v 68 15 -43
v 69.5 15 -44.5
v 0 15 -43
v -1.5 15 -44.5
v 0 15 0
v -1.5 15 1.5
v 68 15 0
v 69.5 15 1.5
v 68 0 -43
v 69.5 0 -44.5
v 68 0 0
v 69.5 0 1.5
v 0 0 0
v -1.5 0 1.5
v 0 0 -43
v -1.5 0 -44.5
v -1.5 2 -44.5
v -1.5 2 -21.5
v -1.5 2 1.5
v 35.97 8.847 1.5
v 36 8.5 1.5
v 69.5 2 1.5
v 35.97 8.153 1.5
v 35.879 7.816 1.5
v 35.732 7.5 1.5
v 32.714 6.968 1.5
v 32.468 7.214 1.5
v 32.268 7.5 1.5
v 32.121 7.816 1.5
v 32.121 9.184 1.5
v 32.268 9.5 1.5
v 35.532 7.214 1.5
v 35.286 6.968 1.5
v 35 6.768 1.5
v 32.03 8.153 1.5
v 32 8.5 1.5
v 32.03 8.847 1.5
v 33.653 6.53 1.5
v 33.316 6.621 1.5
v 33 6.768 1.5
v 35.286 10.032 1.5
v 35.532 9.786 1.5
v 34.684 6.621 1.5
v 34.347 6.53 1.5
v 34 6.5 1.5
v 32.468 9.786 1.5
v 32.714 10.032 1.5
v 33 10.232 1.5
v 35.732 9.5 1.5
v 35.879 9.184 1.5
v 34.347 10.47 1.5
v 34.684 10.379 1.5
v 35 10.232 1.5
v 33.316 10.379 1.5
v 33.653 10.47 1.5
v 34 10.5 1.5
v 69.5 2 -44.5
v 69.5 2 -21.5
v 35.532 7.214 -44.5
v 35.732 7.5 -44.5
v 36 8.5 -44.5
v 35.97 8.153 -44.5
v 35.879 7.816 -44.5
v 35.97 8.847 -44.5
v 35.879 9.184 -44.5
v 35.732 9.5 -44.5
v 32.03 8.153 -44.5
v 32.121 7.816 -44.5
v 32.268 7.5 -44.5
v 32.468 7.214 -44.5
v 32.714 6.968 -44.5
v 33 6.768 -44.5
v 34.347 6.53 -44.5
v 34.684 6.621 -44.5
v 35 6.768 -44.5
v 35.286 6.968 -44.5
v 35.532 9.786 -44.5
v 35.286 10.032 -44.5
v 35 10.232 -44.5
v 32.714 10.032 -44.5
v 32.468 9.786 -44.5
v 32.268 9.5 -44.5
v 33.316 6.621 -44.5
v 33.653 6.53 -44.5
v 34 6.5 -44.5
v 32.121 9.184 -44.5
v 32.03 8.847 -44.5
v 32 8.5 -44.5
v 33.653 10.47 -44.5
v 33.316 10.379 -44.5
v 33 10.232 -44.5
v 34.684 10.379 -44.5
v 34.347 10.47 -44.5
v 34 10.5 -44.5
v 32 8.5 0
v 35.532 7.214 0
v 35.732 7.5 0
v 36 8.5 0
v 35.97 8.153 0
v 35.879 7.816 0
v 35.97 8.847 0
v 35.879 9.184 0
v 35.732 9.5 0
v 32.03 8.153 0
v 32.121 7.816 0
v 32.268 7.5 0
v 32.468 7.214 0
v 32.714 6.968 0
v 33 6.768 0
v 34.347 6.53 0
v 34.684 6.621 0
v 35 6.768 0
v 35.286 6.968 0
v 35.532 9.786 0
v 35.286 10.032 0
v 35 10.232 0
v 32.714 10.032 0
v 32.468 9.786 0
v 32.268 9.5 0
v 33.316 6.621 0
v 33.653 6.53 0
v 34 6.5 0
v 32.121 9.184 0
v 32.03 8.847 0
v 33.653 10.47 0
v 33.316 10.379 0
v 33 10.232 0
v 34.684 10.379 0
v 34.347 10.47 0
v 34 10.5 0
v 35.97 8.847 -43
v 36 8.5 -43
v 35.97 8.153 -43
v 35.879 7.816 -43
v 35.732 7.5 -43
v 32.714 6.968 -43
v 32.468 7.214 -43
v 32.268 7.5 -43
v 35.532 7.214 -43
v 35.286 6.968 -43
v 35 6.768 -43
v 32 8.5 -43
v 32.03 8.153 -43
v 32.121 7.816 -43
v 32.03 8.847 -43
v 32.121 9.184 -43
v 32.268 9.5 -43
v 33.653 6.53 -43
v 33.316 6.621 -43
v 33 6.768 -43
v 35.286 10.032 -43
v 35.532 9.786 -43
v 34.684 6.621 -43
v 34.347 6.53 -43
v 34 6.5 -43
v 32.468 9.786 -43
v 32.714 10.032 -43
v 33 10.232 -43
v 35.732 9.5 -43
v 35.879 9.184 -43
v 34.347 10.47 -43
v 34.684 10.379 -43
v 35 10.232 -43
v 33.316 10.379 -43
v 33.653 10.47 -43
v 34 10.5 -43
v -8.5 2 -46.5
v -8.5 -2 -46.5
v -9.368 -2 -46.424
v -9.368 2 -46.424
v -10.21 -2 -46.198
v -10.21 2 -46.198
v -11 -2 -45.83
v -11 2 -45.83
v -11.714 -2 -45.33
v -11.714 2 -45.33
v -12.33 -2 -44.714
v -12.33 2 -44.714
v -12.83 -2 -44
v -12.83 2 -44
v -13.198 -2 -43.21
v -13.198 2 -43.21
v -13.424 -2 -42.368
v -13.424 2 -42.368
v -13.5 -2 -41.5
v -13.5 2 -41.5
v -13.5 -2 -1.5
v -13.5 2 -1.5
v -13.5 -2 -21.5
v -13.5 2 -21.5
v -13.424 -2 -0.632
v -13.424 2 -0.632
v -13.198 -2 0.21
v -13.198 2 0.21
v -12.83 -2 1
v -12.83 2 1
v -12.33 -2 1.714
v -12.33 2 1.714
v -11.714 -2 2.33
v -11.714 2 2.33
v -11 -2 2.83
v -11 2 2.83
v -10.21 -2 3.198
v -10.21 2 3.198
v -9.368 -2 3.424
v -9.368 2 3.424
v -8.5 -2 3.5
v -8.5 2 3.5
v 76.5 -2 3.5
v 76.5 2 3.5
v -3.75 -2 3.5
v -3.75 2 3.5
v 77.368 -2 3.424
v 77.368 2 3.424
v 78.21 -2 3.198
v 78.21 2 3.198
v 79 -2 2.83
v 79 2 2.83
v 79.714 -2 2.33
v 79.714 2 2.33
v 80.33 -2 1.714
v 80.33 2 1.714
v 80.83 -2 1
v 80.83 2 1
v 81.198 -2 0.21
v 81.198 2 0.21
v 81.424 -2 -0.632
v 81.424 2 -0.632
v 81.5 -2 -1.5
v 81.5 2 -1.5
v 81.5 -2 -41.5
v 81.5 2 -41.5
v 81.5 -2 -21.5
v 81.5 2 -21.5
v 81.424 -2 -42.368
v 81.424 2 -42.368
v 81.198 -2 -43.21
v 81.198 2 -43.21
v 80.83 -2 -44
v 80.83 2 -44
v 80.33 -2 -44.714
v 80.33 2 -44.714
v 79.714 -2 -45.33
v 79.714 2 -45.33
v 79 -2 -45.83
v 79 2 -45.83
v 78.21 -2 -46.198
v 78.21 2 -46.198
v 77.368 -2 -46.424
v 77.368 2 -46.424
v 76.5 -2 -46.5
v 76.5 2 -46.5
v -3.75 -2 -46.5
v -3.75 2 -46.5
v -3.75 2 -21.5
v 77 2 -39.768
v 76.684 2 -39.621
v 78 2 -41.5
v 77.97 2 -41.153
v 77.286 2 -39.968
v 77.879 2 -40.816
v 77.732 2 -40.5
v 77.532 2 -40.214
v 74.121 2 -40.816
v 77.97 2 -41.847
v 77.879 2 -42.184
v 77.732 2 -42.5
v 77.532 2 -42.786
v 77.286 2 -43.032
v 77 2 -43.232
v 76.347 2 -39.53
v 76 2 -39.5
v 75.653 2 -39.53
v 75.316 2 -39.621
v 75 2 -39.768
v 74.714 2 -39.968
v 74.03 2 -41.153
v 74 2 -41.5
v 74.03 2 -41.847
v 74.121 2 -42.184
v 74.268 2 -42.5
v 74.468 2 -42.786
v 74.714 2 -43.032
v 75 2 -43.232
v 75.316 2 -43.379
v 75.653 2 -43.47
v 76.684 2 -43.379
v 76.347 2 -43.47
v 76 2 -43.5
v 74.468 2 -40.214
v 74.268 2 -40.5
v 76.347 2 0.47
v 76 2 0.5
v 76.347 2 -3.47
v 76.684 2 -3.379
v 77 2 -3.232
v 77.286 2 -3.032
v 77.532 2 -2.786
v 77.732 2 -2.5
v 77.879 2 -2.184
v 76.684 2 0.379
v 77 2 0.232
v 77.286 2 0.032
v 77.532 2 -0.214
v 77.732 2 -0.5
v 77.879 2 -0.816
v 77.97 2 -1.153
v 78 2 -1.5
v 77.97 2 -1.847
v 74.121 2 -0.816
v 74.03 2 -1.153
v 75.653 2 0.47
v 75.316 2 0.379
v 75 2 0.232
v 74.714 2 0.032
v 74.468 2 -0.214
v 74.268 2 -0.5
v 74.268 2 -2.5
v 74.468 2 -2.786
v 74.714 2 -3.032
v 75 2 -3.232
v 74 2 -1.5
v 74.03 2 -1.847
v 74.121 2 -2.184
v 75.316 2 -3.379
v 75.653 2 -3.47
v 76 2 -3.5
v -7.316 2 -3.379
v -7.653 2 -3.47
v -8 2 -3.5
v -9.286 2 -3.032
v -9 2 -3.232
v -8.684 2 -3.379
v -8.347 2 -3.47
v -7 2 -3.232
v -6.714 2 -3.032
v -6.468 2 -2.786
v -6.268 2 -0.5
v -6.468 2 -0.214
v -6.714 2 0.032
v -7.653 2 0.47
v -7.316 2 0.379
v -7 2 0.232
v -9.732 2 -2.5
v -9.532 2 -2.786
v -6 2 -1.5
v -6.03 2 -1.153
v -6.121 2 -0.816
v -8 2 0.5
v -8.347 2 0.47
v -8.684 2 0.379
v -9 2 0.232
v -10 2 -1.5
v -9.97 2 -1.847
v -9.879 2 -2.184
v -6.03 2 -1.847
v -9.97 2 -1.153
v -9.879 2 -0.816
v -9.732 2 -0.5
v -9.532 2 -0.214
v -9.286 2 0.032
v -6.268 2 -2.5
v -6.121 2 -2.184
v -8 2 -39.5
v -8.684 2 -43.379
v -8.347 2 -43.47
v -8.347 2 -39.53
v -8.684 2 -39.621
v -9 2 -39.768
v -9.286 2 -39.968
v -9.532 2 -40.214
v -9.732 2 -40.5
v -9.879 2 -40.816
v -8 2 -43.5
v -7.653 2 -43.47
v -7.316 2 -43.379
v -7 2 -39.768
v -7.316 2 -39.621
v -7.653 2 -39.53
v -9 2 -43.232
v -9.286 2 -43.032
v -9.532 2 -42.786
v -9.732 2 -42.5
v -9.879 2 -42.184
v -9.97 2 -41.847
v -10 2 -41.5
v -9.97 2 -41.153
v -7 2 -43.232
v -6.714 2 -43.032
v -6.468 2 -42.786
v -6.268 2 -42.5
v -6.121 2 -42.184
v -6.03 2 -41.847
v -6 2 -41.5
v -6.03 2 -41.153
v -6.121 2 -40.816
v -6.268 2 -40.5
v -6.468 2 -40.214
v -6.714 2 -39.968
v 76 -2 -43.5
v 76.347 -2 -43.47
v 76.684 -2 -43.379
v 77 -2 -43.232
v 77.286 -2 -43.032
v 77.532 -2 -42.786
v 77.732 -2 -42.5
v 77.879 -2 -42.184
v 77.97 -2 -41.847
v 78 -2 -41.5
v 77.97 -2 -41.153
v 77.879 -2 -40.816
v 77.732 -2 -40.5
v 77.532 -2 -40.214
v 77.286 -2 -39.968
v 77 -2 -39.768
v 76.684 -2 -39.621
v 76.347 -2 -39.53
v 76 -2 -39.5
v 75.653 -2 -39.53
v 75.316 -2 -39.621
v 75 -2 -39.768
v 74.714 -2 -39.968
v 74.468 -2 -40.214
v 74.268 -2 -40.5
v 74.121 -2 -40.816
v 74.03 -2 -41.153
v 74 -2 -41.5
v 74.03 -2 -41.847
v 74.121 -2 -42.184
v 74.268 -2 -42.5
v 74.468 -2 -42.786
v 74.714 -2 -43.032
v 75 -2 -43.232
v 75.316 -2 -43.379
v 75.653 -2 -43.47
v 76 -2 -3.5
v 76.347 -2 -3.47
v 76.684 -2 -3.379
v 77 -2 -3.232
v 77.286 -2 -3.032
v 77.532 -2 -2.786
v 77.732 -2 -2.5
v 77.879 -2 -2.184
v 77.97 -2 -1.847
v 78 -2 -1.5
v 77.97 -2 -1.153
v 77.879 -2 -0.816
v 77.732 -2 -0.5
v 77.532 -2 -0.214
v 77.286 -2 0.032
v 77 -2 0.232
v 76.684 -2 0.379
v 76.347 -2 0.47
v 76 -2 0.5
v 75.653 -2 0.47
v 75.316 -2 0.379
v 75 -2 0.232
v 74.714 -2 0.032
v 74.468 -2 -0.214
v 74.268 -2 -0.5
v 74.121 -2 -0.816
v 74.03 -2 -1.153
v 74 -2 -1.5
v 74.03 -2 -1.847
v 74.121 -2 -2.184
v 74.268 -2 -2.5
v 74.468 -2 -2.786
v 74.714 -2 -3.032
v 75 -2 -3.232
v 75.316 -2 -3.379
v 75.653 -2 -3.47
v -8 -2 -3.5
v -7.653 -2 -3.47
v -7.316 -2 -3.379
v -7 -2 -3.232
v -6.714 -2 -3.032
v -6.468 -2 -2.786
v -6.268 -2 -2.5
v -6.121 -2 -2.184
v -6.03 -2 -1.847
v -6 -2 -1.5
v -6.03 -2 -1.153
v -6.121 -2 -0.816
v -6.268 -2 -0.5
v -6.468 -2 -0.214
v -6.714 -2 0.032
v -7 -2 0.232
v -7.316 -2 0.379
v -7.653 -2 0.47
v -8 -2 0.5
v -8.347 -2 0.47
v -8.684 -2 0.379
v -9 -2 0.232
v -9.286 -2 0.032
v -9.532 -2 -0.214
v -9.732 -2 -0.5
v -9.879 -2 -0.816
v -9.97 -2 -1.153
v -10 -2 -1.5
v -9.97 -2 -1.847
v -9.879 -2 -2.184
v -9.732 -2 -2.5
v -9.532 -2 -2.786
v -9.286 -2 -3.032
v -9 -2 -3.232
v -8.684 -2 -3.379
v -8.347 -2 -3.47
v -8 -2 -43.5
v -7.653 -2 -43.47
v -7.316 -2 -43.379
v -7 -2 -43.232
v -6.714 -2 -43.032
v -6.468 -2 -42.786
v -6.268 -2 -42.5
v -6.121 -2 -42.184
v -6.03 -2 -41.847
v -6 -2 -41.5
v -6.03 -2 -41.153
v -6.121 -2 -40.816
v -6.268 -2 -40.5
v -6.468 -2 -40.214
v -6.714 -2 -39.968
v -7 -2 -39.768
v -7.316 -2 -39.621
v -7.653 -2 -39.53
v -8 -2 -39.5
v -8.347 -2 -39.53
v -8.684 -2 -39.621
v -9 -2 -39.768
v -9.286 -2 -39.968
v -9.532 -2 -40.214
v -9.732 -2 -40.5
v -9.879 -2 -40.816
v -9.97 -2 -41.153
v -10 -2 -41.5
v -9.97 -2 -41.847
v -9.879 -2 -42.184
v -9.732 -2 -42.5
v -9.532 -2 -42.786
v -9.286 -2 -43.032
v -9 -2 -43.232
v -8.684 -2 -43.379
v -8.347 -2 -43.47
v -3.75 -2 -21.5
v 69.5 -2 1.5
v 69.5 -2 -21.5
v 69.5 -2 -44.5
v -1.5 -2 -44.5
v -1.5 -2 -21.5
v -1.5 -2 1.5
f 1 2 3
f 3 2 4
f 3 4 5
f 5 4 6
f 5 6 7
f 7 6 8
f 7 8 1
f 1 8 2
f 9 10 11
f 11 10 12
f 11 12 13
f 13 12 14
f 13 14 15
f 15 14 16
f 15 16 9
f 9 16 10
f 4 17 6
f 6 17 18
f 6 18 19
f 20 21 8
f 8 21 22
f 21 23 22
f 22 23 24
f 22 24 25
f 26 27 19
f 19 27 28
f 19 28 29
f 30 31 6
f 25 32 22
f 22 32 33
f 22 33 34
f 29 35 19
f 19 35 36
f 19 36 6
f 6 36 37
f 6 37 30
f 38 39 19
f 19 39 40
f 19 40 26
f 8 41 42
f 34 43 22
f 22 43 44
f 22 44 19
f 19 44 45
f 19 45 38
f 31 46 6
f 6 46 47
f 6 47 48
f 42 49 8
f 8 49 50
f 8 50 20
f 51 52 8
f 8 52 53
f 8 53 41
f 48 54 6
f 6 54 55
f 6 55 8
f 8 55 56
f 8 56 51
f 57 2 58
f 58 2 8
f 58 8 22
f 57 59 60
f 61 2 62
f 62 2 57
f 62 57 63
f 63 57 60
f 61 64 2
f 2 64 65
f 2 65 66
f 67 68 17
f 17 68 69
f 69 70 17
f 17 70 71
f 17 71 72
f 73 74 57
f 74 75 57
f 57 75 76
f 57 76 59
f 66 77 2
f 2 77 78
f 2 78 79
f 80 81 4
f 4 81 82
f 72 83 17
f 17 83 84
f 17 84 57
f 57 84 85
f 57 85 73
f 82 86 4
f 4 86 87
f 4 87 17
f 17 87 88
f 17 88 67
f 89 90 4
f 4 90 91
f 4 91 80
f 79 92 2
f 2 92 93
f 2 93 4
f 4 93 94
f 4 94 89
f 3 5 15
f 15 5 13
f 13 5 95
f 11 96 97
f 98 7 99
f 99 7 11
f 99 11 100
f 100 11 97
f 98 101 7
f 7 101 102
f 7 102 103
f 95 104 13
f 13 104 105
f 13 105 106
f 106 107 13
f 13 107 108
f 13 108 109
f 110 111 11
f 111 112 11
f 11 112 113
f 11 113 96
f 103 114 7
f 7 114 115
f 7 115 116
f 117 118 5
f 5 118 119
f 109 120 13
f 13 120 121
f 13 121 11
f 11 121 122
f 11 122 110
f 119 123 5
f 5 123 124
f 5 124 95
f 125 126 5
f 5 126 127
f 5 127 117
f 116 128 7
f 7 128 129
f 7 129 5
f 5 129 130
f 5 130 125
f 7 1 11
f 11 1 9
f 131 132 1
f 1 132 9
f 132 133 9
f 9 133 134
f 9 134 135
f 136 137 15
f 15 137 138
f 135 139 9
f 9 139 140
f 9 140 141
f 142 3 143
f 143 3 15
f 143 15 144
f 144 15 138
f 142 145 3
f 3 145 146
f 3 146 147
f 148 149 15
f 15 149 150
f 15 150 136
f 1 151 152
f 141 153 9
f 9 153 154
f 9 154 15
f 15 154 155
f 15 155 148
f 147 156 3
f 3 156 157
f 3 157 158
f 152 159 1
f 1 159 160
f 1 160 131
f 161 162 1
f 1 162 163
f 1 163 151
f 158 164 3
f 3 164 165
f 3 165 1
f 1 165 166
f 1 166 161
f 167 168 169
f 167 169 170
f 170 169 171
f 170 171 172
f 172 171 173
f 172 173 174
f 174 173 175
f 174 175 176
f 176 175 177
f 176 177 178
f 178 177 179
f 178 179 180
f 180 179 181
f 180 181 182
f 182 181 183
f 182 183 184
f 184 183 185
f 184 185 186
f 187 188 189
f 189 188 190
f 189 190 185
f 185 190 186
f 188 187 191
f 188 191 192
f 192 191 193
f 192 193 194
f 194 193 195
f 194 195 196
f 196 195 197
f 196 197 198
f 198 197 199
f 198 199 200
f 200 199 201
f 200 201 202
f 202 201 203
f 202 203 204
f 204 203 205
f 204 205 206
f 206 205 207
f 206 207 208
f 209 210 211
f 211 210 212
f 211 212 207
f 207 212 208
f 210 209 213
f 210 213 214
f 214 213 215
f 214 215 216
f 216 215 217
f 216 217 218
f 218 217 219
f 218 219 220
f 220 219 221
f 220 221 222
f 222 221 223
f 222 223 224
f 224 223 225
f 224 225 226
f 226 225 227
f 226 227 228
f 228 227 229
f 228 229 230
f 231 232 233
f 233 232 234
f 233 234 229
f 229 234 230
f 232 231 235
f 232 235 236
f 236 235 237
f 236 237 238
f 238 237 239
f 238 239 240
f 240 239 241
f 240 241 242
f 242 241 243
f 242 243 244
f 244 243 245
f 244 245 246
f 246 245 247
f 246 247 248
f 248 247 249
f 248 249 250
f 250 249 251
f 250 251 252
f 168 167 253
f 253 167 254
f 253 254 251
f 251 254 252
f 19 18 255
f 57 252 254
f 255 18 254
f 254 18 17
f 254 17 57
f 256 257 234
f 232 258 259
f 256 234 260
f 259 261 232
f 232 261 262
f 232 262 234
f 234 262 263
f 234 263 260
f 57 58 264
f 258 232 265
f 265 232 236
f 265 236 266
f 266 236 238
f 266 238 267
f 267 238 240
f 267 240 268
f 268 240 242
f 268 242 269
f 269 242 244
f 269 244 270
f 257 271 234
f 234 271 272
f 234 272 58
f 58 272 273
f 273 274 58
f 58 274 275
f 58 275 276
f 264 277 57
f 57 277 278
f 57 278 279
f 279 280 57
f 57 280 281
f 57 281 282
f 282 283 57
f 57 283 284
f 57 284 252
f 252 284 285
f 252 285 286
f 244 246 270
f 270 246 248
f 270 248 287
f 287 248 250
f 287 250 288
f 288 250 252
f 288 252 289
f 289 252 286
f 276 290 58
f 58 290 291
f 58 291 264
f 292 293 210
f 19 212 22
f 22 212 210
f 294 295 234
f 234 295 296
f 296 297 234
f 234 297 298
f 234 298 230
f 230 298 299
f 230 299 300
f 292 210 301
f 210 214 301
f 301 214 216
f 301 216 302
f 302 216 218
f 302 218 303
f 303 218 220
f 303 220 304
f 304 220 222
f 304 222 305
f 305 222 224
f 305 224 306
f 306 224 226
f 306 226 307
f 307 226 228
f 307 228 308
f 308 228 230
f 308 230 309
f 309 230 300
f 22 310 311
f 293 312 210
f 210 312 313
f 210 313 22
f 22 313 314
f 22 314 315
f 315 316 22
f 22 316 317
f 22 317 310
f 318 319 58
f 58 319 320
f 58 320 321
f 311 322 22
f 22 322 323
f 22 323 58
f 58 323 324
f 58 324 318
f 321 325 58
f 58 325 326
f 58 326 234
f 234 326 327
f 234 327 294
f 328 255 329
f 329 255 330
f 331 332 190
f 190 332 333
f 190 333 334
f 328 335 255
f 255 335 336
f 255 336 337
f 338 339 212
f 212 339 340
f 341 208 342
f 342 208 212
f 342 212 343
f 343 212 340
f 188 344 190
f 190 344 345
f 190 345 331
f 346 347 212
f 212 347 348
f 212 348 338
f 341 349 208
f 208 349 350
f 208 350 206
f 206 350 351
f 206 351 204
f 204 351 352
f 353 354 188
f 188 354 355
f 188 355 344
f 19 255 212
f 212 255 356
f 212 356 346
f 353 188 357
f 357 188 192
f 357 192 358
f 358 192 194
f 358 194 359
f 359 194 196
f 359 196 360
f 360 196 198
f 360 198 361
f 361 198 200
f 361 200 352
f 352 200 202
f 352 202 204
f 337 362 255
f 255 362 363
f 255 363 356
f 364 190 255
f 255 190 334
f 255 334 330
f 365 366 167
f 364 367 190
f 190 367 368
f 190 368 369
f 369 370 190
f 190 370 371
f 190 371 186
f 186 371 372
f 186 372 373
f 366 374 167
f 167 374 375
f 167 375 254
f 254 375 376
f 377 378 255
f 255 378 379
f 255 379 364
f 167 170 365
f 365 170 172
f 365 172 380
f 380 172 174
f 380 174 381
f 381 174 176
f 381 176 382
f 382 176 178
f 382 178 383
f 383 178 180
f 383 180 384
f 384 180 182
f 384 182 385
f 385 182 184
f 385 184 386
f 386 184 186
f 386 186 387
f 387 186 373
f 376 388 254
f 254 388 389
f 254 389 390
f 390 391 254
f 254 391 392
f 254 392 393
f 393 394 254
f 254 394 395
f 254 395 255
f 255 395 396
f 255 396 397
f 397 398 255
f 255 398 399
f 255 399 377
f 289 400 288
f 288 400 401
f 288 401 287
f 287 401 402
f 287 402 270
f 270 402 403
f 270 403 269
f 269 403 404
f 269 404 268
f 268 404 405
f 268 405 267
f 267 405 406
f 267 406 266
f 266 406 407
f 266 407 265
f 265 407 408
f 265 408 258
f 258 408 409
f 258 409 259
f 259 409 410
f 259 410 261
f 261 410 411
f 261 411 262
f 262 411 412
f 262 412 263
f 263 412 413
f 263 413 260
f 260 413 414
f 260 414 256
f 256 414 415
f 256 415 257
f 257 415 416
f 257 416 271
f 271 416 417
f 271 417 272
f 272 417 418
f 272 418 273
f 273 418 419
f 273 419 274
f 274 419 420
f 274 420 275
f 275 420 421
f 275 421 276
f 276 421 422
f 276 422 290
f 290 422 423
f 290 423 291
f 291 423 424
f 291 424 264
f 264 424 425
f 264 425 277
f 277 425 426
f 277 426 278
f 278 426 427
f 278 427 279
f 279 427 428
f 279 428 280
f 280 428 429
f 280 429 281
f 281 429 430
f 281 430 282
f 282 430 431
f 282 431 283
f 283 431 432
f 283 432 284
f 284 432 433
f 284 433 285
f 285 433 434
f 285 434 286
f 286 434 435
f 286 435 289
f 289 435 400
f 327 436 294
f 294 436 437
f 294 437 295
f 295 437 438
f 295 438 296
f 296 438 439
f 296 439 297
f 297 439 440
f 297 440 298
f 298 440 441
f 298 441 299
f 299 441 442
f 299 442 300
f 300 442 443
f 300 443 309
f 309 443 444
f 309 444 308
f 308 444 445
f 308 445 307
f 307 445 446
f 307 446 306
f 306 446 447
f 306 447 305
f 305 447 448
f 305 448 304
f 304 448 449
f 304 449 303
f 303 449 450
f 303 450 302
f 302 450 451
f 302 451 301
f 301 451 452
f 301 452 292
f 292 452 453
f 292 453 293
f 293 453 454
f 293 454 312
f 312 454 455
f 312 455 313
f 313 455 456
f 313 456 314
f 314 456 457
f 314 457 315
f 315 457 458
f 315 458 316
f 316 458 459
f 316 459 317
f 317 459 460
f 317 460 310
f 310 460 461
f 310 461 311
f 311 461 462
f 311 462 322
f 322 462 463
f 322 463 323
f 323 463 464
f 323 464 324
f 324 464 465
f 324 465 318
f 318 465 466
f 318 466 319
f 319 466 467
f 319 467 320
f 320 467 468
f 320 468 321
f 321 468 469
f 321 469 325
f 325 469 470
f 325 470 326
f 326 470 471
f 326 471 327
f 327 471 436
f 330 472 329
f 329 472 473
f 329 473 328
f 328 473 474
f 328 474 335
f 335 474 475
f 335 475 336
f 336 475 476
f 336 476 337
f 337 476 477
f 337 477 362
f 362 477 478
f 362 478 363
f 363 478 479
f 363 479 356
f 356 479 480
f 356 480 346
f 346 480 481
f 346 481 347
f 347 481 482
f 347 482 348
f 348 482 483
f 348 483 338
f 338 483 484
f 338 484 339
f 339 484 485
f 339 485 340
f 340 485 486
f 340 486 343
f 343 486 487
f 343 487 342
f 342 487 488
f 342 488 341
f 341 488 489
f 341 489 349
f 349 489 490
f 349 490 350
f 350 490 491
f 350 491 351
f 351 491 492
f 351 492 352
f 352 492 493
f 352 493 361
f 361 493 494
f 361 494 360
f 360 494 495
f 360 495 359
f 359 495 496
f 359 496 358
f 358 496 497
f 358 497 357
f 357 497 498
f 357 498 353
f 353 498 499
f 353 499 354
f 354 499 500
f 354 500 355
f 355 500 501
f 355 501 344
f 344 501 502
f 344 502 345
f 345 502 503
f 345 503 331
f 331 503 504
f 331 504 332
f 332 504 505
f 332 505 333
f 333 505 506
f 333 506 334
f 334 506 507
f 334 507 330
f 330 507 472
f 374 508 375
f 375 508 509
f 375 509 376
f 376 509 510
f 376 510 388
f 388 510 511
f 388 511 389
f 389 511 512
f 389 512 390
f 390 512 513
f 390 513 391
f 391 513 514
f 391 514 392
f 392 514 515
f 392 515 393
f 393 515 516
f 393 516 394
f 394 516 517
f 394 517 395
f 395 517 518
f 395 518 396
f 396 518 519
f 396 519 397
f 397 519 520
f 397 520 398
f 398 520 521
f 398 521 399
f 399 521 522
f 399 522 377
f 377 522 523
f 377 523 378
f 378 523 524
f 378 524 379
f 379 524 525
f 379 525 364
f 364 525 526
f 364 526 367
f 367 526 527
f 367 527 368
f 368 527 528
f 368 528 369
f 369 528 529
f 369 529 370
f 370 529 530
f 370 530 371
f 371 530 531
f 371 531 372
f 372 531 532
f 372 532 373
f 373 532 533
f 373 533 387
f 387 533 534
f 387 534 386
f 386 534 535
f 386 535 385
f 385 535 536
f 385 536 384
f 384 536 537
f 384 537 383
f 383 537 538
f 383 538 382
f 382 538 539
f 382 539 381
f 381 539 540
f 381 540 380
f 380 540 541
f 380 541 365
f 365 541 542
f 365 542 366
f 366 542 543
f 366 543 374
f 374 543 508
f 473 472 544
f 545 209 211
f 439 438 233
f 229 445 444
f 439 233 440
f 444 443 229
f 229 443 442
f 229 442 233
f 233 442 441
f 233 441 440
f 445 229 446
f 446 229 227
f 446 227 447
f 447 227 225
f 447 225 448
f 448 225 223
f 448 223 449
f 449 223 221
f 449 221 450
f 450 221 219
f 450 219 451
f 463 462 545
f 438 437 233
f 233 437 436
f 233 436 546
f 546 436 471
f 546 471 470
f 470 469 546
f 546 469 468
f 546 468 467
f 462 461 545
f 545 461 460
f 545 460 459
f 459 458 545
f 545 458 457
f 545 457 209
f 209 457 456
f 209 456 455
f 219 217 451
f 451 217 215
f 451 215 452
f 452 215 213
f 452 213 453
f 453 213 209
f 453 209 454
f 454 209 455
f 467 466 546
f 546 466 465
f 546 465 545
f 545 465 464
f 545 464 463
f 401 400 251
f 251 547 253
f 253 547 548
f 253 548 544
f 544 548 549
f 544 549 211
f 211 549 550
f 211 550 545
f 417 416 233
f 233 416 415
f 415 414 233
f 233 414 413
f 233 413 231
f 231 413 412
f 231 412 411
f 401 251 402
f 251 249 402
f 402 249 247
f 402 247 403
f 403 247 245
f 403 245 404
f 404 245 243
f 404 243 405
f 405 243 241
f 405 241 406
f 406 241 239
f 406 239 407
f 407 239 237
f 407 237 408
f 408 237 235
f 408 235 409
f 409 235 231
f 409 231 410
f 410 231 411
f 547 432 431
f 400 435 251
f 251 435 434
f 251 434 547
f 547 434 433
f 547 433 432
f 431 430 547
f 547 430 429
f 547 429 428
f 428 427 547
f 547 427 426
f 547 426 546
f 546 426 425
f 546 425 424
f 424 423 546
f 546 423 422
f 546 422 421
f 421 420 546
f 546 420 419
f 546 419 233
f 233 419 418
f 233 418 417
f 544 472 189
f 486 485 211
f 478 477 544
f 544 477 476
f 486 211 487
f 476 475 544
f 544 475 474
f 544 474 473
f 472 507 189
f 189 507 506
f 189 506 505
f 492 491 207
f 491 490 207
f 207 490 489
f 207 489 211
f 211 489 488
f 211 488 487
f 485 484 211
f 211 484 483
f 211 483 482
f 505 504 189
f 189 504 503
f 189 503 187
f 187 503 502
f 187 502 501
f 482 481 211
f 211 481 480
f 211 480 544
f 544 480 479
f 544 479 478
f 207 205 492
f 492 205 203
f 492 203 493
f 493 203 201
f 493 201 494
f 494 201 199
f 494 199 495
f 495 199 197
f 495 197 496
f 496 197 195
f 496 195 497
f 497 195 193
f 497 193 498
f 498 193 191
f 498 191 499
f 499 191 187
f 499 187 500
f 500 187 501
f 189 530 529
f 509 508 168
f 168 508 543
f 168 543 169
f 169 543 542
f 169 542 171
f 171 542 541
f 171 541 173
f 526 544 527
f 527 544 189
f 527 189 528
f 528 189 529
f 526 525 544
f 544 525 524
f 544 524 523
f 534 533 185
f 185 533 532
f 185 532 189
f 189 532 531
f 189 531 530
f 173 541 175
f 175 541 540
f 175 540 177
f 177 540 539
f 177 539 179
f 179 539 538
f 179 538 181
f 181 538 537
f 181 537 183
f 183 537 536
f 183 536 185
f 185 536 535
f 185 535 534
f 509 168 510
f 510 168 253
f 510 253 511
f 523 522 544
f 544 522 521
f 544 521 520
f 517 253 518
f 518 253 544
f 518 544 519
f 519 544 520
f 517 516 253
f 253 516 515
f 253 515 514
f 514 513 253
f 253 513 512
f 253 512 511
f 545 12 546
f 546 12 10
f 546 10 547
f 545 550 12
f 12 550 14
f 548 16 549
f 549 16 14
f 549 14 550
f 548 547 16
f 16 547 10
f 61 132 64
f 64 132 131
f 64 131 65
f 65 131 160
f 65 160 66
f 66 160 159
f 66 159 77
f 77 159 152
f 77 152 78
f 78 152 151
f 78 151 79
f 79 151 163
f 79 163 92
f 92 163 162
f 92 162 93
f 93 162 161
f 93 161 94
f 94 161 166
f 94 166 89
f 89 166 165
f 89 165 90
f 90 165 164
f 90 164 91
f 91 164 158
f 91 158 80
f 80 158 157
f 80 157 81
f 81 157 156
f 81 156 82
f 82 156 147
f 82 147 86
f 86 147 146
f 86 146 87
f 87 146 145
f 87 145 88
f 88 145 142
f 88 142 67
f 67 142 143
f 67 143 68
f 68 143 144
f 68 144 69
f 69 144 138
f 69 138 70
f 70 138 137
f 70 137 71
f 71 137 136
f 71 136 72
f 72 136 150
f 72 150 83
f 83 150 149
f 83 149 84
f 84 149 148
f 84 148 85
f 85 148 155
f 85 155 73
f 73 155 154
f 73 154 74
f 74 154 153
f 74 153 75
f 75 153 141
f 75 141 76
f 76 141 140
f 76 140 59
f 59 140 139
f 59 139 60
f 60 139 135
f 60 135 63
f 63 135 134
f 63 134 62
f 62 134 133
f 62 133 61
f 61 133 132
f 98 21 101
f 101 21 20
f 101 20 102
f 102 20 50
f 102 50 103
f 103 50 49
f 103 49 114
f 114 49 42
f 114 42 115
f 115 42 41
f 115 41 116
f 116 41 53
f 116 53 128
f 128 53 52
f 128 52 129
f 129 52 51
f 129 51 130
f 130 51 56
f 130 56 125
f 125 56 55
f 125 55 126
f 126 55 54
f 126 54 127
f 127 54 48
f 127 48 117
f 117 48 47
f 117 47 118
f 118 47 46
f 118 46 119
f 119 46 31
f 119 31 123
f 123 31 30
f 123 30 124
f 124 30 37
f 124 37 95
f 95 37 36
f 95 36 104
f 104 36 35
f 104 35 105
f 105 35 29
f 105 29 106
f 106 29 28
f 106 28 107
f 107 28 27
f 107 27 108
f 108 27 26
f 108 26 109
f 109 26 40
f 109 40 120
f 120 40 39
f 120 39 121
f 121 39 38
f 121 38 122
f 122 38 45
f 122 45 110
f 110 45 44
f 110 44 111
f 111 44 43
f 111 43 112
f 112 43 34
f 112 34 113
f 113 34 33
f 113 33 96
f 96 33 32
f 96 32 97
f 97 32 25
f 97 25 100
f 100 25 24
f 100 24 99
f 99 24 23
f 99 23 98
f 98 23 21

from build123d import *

# Parameters (mm, degrees)
SKETCH_1_W          = 71
SKETCH_1_H          = 46
SKETCH_1_W_2        = 68
SKETCH_1_H_2        = 43
EXTRUDE_1_DEPTH     = 15
SKETCH_2_R          = 2
SKETCH_2_W          = 71
SKETCH_2_H          = 46
EXTRUDE_2_DEPTH     = 2
EXTRUDE_START       = 2
SKETCH_2_2_R        = 2
SKETCH_2_2_W        = 71
SKETCH_2_2_H        = 46
EXTRUDE_3_DEPTH     = 2
SKETCH_3_R          = 2
CUT_EXTRUDE_1_DEPTH = 96.766643462


with BuildPart() as part:
    # 草图1 → 凸台-拉伸1 (new body)
    with BuildSketch(Plane(origin=(0, 0, 0), x_dir=(1, 0, 0), z_dir=(0, 1, 0))):
        with Locations((34, 21.5)):
            Rectangle(SKETCH_1_W, SKETCH_1_H)
        with Locations((34, 21.5)):
            Rectangle(SKETCH_1_W_2, SKETCH_1_H_2, mode=Mode.SUBTRACT)
    extrude(amount=EXTRUDE_1_DEPTH)

    # 草图2 → 凸台-拉伸2 (add)
    with BuildSketch(Plane.XZ):
        with BuildLine():
            Line((76.5, -46.5), (-8.5, -46.5))
            ThreePointArc((-8.5, -46.5), (-12.035533906, -45.035533906), (-13.5, -41.5))
            Line((-13.5, -41.5), (-13.5, -1.5))
            ThreePointArc((-13.5, -1.5), (-12.035533906, 2.035533906), (-8.5, 3.5))
            Line((-8.5, 3.5), (76.5, 3.5))
            ThreePointArc((76.5, 3.5), (80.035533906, 2.035533906), (81.5, -1.5))
            Line((81.5, -1.5), (81.5, -41.5))
            ThreePointArc((81.5, -41.5), (80.035533906, -45.035533906), (76.5, -46.5))
        make_face()
        with Locations((76, -41.5)):
            Circle(SKETCH_2_R, mode=Mode.SUBTRACT)
        with Locations((76, -1.5)):
            Circle(SKETCH_2_R, mode=Mode.SUBTRACT)
        with Locations((-8, -1.5)):
            Circle(SKETCH_2_R, mode=Mode.SUBTRACT)
        with Locations((-8, -41.5)):
            Circle(SKETCH_2_R, mode=Mode.SUBTRACT)
        with Locations((34, -21.5)):
            Rectangle(SKETCH_2_W, SKETCH_2_H, mode=Mode.SUBTRACT)
    extrude(amount=-EXTRUDE_2_DEPTH)

    # 草图2<2> → 凸台-拉伸3 (add)
    with BuildSketch(Plane.XZ.offset(EXTRUDE_START)):
        with BuildLine():
            Line((76.5, -46.5), (-8.5, -46.5))
            ThreePointArc((-8.5, -46.5), (-12.035533906, -45.035533906), (-13.5, -41.5))
            Line((-13.5, -41.5), (-13.5, -1.5))
            ThreePointArc((-13.5, -1.5), (-12.035533906, 2.035533906), (-8.5, 3.5))
            Line((-8.5, 3.5), (76.5, 3.5))
            ThreePointArc((76.5, 3.5), (80.035533906, 2.035533906), (81.5, -1.5))
            Line((81.5, -1.5), (81.5, -41.5))
            ThreePointArc((81.5, -41.5), (80.035533906, -45.035533906), (76.5, -46.5))
        make_face()
        with Locations((76, -41.5)):
            Circle(SKETCH_2_2_R, mode=Mode.SUBTRACT)
        with Locations((76, -1.5)):
            Circle(SKETCH_2_2_R, mode=Mode.SUBTRACT)
        with Locations((-8, -1.5)):
            Circle(SKETCH_2_2_R, mode=Mode.SUBTRACT)
        with Locations((-8, -41.5)):
            Circle(SKETCH_2_2_R, mode=Mode.SUBTRACT)
        with Locations((34, -21.5)):
            Rectangle(SKETCH_2_2_W, SKETCH_2_2_H, mode=Mode.SUBTRACT)
    extrude(amount=-EXTRUDE_3_DEPTH)

    # 草图3 → 切除-拉伸1 (cut, through all)
    with BuildSketch(Plane.XY.offset(1.5)):
        with Locations((34, 8.5)):
            Circle(SKETCH_3_R)
    extrude(amount=-CUT_EXTRUDE_1_DEPTH, mode=Mode.SUBTRACT)


solid = part.part
